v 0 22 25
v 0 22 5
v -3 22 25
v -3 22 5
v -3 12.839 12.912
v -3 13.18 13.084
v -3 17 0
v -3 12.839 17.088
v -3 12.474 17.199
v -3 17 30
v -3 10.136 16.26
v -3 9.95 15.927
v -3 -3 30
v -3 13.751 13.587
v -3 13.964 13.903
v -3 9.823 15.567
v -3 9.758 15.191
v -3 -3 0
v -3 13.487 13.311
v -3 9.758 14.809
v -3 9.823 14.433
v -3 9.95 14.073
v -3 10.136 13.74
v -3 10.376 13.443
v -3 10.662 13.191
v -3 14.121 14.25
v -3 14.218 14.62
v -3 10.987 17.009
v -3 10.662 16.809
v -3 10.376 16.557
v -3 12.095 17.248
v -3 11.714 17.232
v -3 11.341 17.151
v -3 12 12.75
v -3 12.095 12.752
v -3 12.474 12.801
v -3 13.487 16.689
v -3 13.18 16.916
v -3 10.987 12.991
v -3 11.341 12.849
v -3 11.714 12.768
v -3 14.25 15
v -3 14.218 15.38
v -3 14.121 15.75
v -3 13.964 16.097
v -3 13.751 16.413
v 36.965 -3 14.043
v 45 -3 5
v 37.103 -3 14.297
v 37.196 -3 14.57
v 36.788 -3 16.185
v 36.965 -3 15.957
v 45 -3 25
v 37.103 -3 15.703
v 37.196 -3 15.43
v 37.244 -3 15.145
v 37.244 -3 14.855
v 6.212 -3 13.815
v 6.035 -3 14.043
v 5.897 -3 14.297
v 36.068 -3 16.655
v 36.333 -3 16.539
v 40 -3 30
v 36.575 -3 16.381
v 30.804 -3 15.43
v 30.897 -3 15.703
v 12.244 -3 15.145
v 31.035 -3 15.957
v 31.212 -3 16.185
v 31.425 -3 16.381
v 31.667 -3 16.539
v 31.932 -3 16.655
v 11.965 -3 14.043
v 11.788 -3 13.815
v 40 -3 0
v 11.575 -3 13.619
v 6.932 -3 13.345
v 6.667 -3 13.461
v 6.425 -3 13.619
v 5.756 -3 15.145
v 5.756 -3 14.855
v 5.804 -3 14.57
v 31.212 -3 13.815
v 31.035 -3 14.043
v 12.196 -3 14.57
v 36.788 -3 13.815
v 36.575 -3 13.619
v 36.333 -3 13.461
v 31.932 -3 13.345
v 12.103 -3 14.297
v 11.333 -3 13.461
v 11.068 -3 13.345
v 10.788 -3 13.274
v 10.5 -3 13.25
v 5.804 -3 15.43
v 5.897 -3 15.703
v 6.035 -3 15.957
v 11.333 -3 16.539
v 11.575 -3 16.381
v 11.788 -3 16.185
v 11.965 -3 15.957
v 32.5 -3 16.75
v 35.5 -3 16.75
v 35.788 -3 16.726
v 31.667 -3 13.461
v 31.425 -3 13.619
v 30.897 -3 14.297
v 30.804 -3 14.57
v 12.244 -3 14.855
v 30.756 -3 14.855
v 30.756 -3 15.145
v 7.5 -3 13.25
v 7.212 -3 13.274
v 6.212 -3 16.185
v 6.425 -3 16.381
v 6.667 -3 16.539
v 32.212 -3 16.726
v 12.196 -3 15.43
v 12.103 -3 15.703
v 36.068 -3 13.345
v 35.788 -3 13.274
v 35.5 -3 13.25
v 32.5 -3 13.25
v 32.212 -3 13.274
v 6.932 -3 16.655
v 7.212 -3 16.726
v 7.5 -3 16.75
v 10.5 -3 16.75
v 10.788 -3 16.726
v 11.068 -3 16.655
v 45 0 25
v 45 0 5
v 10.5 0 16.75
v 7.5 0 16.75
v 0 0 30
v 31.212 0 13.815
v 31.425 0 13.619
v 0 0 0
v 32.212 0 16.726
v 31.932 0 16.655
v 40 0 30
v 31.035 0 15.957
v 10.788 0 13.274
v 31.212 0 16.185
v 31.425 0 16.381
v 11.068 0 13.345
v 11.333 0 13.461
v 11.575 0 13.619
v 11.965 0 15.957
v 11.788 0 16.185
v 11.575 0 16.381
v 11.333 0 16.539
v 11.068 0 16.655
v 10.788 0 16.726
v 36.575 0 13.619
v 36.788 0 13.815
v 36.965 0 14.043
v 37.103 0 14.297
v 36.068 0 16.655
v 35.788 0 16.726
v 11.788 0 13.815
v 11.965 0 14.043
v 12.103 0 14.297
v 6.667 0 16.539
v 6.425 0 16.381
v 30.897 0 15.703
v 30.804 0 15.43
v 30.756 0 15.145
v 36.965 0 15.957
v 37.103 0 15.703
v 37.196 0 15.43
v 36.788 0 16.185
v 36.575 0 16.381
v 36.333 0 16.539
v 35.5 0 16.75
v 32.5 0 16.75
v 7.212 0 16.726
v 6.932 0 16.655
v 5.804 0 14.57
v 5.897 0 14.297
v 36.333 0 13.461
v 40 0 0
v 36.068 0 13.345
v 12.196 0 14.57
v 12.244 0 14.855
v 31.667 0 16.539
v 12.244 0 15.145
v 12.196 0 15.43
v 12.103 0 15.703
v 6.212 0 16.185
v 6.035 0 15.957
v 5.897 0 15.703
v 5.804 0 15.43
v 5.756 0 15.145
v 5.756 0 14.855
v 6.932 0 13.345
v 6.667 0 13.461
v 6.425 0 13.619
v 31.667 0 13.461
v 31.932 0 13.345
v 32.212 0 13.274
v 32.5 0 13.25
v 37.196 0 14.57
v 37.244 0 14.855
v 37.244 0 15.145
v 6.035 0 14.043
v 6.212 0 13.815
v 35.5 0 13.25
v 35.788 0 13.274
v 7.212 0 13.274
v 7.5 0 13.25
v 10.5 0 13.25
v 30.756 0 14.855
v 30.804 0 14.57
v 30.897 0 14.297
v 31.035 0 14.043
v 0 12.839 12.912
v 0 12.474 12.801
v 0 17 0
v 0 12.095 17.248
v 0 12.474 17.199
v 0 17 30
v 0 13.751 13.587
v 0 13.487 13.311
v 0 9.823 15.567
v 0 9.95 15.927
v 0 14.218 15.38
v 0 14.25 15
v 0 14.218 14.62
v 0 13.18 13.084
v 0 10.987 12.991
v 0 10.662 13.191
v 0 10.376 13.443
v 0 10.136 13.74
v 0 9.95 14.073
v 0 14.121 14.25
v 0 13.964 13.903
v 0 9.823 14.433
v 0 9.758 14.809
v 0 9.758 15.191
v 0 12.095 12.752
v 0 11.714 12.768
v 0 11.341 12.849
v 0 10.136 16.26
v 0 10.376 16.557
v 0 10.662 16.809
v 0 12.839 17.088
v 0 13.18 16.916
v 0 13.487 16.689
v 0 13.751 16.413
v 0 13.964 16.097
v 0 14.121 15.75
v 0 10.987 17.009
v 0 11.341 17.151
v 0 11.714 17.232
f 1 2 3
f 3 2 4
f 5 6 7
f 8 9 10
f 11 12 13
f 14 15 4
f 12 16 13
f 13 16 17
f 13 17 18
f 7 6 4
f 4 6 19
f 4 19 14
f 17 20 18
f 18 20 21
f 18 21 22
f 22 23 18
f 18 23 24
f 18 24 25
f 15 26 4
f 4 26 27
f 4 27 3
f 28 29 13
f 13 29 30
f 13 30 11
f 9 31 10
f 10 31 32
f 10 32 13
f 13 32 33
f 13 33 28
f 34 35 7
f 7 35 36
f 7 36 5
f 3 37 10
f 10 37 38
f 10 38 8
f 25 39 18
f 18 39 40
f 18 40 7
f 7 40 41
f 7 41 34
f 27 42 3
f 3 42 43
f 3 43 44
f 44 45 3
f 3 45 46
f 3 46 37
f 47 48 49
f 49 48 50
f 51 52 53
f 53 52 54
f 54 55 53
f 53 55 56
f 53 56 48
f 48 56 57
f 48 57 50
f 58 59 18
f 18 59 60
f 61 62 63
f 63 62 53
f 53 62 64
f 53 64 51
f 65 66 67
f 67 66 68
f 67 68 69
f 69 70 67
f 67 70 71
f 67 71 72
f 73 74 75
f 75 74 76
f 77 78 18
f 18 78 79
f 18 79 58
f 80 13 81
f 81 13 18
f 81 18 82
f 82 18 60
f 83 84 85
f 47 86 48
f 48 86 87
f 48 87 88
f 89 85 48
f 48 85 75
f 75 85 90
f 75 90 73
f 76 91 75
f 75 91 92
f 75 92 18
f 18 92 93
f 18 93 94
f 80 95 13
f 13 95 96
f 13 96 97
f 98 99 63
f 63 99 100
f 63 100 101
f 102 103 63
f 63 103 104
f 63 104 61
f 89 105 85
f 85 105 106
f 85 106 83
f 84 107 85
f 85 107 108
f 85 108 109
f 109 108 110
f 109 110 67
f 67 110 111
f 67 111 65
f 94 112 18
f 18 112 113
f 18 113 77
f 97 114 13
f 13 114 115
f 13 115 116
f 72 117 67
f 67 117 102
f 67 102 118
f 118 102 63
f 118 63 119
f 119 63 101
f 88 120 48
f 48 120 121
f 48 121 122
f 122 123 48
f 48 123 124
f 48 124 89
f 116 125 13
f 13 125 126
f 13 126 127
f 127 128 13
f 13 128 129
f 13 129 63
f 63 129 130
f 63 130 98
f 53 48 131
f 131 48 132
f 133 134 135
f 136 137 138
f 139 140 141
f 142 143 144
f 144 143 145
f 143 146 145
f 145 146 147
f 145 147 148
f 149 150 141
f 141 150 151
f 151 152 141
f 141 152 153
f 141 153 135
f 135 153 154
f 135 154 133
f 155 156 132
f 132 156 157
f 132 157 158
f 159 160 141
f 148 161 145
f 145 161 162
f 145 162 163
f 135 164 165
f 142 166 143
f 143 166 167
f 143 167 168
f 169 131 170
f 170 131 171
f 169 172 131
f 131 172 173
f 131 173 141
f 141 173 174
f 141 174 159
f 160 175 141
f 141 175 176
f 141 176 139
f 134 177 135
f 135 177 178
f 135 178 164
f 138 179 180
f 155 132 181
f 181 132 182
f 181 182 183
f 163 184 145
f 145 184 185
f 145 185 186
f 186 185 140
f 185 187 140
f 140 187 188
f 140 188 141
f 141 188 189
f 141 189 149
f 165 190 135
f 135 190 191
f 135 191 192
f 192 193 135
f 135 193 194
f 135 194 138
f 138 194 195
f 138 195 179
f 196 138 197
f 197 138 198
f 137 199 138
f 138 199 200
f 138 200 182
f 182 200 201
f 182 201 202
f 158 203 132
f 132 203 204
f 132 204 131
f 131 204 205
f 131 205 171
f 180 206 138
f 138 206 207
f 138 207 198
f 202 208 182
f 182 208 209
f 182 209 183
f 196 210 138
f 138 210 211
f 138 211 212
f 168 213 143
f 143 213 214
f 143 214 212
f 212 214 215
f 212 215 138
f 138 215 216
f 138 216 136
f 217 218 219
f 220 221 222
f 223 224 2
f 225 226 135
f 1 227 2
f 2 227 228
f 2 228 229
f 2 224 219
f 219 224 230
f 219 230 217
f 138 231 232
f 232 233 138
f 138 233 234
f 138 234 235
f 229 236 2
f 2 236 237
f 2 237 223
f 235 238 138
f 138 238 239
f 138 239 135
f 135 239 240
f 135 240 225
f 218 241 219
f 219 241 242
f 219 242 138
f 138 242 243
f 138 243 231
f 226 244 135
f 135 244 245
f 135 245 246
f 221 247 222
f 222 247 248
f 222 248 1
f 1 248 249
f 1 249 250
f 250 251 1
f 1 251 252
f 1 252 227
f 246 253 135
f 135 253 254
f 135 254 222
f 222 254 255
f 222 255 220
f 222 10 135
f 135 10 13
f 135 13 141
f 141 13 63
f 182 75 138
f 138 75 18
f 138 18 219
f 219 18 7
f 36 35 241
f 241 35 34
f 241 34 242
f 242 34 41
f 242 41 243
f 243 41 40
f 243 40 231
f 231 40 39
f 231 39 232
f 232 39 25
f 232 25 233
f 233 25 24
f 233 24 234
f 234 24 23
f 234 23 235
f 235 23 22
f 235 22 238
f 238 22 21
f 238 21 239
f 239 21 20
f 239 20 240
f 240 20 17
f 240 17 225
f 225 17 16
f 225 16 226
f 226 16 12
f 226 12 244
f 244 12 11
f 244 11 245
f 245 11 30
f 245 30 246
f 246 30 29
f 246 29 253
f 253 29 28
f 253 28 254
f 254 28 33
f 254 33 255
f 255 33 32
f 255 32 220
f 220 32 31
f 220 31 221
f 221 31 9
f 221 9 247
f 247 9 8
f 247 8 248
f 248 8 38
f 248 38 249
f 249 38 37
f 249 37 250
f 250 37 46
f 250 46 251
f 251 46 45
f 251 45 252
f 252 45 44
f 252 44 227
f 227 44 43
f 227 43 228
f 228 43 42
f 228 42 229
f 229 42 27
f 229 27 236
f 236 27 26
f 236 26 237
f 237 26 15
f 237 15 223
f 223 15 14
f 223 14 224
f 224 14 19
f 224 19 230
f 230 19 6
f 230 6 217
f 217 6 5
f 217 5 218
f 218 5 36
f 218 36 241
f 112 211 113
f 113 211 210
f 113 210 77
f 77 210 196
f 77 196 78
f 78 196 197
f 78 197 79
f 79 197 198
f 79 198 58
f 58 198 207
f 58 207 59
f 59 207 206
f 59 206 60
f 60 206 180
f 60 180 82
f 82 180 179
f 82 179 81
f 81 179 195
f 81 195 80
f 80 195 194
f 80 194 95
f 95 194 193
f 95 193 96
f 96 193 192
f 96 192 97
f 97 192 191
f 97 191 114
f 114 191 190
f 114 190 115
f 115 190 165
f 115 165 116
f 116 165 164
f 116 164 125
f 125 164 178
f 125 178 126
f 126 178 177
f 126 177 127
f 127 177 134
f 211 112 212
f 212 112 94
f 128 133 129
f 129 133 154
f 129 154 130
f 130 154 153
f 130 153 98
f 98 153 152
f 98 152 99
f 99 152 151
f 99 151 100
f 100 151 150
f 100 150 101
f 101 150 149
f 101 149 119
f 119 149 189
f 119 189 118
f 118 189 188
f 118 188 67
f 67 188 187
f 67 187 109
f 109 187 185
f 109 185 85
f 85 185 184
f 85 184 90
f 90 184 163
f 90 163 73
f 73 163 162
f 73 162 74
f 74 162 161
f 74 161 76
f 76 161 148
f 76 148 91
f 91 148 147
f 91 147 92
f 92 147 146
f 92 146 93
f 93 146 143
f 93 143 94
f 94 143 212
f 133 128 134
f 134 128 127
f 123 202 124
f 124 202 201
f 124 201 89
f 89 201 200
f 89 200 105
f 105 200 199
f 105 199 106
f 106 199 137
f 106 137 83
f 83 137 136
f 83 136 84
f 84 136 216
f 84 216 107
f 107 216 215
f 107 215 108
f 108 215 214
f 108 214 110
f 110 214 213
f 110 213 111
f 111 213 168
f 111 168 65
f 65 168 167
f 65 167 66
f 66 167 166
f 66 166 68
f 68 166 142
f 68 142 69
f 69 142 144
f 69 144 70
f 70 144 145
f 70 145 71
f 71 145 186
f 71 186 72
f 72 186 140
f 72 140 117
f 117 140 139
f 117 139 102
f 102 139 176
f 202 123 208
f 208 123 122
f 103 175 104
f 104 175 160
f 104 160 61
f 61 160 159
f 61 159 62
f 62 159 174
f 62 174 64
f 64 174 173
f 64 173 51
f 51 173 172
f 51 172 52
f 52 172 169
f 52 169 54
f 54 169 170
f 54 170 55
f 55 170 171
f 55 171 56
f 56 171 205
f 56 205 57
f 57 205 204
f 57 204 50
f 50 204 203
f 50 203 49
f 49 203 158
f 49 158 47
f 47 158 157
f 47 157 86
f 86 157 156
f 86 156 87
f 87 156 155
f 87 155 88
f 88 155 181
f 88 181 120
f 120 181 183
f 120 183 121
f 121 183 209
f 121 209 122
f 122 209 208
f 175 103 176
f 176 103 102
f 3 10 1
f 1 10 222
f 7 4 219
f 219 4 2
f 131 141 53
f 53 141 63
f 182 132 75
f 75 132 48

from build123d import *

# Parameters (mm, degrees)
BOSS_EXTRUDE1_DEPTH = 30
SKETCH2_R           = 2.25
CUT_EXTRUDE1_DEPTH  = 30
CUT_EXTRUDE2_DEPTH  = 30
CHAMFER1_SIZE       = 5


with BuildPart() as part:
    # Sketch1 → Boss-Extrude1 (new body)
    with BuildSketch(Plane.XY):
        Polygon((0, 22), (0, 0), (45, 0), (45, -3), (-3, -3), (-3, 22), align=None)
    extrude(amount=BOSS_EXTRUDE1_DEPTH)

    # Sketch2 → Cut-Extrude1 (cut)
    with BuildSketch(Plane(origin=(0, 0, 0), x_dir=(0, 0, -1), z_dir=(1, 0, 0))):
        with Locations(Location((-15, 12, 0), (0, 0, 90))):
            Circle(SKETCH2_R)
    extrude(amount=-CUT_EXTRUDE1_DEPTH, mode=Mode.SUBTRACT)

    # Sketch3 → Cut-Extrude2 (cut)
    with BuildSketch(Plane(origin=(0, 0, 0), x_dir=(1, 0, 0), z_dir=(0, 1, 0))):
        with BuildLine():
            Line((7.5, -13.25), (10.5, -13.25))
            ThreePointArc((10.5, -13.25), (12.25, -15), (10.5, -16.75))
            Line((10.5, -16.75), (7.5, -16.75))
            ThreePointArc((7.5, -16.75), (5.75, -15), (7.5, -13.25))
        make_face()
        with BuildLine():
            Line((32.5, -13.25), (35.5, -13.25))
            ThreePointArc((35.5, -13.25), (37.25, -15), (35.5, -16.75))
            Line((35.5, -16.75), (32.5, -16.75))
            ThreePointArc((32.5, -16.75), (30.75, -15), (32.5, -13.25))
        make_face()
    extrude(amount=-CUT_EXTRUDE2_DEPTH, mode=Mode.SUBTRACT)

    # Chamfer1
    chamfer1_edges = [part.edges().sort_by_distance(p)[0] for p in [
        (45, -1.5, 30),
        (-1.5, 22, 30),
        (45, -1.5, 0),
        (-1.5, 22, 0),
    ]]
    chamfer(chamfer1_edges, length=CHAMFER1_SIZE)


solid = part.part
